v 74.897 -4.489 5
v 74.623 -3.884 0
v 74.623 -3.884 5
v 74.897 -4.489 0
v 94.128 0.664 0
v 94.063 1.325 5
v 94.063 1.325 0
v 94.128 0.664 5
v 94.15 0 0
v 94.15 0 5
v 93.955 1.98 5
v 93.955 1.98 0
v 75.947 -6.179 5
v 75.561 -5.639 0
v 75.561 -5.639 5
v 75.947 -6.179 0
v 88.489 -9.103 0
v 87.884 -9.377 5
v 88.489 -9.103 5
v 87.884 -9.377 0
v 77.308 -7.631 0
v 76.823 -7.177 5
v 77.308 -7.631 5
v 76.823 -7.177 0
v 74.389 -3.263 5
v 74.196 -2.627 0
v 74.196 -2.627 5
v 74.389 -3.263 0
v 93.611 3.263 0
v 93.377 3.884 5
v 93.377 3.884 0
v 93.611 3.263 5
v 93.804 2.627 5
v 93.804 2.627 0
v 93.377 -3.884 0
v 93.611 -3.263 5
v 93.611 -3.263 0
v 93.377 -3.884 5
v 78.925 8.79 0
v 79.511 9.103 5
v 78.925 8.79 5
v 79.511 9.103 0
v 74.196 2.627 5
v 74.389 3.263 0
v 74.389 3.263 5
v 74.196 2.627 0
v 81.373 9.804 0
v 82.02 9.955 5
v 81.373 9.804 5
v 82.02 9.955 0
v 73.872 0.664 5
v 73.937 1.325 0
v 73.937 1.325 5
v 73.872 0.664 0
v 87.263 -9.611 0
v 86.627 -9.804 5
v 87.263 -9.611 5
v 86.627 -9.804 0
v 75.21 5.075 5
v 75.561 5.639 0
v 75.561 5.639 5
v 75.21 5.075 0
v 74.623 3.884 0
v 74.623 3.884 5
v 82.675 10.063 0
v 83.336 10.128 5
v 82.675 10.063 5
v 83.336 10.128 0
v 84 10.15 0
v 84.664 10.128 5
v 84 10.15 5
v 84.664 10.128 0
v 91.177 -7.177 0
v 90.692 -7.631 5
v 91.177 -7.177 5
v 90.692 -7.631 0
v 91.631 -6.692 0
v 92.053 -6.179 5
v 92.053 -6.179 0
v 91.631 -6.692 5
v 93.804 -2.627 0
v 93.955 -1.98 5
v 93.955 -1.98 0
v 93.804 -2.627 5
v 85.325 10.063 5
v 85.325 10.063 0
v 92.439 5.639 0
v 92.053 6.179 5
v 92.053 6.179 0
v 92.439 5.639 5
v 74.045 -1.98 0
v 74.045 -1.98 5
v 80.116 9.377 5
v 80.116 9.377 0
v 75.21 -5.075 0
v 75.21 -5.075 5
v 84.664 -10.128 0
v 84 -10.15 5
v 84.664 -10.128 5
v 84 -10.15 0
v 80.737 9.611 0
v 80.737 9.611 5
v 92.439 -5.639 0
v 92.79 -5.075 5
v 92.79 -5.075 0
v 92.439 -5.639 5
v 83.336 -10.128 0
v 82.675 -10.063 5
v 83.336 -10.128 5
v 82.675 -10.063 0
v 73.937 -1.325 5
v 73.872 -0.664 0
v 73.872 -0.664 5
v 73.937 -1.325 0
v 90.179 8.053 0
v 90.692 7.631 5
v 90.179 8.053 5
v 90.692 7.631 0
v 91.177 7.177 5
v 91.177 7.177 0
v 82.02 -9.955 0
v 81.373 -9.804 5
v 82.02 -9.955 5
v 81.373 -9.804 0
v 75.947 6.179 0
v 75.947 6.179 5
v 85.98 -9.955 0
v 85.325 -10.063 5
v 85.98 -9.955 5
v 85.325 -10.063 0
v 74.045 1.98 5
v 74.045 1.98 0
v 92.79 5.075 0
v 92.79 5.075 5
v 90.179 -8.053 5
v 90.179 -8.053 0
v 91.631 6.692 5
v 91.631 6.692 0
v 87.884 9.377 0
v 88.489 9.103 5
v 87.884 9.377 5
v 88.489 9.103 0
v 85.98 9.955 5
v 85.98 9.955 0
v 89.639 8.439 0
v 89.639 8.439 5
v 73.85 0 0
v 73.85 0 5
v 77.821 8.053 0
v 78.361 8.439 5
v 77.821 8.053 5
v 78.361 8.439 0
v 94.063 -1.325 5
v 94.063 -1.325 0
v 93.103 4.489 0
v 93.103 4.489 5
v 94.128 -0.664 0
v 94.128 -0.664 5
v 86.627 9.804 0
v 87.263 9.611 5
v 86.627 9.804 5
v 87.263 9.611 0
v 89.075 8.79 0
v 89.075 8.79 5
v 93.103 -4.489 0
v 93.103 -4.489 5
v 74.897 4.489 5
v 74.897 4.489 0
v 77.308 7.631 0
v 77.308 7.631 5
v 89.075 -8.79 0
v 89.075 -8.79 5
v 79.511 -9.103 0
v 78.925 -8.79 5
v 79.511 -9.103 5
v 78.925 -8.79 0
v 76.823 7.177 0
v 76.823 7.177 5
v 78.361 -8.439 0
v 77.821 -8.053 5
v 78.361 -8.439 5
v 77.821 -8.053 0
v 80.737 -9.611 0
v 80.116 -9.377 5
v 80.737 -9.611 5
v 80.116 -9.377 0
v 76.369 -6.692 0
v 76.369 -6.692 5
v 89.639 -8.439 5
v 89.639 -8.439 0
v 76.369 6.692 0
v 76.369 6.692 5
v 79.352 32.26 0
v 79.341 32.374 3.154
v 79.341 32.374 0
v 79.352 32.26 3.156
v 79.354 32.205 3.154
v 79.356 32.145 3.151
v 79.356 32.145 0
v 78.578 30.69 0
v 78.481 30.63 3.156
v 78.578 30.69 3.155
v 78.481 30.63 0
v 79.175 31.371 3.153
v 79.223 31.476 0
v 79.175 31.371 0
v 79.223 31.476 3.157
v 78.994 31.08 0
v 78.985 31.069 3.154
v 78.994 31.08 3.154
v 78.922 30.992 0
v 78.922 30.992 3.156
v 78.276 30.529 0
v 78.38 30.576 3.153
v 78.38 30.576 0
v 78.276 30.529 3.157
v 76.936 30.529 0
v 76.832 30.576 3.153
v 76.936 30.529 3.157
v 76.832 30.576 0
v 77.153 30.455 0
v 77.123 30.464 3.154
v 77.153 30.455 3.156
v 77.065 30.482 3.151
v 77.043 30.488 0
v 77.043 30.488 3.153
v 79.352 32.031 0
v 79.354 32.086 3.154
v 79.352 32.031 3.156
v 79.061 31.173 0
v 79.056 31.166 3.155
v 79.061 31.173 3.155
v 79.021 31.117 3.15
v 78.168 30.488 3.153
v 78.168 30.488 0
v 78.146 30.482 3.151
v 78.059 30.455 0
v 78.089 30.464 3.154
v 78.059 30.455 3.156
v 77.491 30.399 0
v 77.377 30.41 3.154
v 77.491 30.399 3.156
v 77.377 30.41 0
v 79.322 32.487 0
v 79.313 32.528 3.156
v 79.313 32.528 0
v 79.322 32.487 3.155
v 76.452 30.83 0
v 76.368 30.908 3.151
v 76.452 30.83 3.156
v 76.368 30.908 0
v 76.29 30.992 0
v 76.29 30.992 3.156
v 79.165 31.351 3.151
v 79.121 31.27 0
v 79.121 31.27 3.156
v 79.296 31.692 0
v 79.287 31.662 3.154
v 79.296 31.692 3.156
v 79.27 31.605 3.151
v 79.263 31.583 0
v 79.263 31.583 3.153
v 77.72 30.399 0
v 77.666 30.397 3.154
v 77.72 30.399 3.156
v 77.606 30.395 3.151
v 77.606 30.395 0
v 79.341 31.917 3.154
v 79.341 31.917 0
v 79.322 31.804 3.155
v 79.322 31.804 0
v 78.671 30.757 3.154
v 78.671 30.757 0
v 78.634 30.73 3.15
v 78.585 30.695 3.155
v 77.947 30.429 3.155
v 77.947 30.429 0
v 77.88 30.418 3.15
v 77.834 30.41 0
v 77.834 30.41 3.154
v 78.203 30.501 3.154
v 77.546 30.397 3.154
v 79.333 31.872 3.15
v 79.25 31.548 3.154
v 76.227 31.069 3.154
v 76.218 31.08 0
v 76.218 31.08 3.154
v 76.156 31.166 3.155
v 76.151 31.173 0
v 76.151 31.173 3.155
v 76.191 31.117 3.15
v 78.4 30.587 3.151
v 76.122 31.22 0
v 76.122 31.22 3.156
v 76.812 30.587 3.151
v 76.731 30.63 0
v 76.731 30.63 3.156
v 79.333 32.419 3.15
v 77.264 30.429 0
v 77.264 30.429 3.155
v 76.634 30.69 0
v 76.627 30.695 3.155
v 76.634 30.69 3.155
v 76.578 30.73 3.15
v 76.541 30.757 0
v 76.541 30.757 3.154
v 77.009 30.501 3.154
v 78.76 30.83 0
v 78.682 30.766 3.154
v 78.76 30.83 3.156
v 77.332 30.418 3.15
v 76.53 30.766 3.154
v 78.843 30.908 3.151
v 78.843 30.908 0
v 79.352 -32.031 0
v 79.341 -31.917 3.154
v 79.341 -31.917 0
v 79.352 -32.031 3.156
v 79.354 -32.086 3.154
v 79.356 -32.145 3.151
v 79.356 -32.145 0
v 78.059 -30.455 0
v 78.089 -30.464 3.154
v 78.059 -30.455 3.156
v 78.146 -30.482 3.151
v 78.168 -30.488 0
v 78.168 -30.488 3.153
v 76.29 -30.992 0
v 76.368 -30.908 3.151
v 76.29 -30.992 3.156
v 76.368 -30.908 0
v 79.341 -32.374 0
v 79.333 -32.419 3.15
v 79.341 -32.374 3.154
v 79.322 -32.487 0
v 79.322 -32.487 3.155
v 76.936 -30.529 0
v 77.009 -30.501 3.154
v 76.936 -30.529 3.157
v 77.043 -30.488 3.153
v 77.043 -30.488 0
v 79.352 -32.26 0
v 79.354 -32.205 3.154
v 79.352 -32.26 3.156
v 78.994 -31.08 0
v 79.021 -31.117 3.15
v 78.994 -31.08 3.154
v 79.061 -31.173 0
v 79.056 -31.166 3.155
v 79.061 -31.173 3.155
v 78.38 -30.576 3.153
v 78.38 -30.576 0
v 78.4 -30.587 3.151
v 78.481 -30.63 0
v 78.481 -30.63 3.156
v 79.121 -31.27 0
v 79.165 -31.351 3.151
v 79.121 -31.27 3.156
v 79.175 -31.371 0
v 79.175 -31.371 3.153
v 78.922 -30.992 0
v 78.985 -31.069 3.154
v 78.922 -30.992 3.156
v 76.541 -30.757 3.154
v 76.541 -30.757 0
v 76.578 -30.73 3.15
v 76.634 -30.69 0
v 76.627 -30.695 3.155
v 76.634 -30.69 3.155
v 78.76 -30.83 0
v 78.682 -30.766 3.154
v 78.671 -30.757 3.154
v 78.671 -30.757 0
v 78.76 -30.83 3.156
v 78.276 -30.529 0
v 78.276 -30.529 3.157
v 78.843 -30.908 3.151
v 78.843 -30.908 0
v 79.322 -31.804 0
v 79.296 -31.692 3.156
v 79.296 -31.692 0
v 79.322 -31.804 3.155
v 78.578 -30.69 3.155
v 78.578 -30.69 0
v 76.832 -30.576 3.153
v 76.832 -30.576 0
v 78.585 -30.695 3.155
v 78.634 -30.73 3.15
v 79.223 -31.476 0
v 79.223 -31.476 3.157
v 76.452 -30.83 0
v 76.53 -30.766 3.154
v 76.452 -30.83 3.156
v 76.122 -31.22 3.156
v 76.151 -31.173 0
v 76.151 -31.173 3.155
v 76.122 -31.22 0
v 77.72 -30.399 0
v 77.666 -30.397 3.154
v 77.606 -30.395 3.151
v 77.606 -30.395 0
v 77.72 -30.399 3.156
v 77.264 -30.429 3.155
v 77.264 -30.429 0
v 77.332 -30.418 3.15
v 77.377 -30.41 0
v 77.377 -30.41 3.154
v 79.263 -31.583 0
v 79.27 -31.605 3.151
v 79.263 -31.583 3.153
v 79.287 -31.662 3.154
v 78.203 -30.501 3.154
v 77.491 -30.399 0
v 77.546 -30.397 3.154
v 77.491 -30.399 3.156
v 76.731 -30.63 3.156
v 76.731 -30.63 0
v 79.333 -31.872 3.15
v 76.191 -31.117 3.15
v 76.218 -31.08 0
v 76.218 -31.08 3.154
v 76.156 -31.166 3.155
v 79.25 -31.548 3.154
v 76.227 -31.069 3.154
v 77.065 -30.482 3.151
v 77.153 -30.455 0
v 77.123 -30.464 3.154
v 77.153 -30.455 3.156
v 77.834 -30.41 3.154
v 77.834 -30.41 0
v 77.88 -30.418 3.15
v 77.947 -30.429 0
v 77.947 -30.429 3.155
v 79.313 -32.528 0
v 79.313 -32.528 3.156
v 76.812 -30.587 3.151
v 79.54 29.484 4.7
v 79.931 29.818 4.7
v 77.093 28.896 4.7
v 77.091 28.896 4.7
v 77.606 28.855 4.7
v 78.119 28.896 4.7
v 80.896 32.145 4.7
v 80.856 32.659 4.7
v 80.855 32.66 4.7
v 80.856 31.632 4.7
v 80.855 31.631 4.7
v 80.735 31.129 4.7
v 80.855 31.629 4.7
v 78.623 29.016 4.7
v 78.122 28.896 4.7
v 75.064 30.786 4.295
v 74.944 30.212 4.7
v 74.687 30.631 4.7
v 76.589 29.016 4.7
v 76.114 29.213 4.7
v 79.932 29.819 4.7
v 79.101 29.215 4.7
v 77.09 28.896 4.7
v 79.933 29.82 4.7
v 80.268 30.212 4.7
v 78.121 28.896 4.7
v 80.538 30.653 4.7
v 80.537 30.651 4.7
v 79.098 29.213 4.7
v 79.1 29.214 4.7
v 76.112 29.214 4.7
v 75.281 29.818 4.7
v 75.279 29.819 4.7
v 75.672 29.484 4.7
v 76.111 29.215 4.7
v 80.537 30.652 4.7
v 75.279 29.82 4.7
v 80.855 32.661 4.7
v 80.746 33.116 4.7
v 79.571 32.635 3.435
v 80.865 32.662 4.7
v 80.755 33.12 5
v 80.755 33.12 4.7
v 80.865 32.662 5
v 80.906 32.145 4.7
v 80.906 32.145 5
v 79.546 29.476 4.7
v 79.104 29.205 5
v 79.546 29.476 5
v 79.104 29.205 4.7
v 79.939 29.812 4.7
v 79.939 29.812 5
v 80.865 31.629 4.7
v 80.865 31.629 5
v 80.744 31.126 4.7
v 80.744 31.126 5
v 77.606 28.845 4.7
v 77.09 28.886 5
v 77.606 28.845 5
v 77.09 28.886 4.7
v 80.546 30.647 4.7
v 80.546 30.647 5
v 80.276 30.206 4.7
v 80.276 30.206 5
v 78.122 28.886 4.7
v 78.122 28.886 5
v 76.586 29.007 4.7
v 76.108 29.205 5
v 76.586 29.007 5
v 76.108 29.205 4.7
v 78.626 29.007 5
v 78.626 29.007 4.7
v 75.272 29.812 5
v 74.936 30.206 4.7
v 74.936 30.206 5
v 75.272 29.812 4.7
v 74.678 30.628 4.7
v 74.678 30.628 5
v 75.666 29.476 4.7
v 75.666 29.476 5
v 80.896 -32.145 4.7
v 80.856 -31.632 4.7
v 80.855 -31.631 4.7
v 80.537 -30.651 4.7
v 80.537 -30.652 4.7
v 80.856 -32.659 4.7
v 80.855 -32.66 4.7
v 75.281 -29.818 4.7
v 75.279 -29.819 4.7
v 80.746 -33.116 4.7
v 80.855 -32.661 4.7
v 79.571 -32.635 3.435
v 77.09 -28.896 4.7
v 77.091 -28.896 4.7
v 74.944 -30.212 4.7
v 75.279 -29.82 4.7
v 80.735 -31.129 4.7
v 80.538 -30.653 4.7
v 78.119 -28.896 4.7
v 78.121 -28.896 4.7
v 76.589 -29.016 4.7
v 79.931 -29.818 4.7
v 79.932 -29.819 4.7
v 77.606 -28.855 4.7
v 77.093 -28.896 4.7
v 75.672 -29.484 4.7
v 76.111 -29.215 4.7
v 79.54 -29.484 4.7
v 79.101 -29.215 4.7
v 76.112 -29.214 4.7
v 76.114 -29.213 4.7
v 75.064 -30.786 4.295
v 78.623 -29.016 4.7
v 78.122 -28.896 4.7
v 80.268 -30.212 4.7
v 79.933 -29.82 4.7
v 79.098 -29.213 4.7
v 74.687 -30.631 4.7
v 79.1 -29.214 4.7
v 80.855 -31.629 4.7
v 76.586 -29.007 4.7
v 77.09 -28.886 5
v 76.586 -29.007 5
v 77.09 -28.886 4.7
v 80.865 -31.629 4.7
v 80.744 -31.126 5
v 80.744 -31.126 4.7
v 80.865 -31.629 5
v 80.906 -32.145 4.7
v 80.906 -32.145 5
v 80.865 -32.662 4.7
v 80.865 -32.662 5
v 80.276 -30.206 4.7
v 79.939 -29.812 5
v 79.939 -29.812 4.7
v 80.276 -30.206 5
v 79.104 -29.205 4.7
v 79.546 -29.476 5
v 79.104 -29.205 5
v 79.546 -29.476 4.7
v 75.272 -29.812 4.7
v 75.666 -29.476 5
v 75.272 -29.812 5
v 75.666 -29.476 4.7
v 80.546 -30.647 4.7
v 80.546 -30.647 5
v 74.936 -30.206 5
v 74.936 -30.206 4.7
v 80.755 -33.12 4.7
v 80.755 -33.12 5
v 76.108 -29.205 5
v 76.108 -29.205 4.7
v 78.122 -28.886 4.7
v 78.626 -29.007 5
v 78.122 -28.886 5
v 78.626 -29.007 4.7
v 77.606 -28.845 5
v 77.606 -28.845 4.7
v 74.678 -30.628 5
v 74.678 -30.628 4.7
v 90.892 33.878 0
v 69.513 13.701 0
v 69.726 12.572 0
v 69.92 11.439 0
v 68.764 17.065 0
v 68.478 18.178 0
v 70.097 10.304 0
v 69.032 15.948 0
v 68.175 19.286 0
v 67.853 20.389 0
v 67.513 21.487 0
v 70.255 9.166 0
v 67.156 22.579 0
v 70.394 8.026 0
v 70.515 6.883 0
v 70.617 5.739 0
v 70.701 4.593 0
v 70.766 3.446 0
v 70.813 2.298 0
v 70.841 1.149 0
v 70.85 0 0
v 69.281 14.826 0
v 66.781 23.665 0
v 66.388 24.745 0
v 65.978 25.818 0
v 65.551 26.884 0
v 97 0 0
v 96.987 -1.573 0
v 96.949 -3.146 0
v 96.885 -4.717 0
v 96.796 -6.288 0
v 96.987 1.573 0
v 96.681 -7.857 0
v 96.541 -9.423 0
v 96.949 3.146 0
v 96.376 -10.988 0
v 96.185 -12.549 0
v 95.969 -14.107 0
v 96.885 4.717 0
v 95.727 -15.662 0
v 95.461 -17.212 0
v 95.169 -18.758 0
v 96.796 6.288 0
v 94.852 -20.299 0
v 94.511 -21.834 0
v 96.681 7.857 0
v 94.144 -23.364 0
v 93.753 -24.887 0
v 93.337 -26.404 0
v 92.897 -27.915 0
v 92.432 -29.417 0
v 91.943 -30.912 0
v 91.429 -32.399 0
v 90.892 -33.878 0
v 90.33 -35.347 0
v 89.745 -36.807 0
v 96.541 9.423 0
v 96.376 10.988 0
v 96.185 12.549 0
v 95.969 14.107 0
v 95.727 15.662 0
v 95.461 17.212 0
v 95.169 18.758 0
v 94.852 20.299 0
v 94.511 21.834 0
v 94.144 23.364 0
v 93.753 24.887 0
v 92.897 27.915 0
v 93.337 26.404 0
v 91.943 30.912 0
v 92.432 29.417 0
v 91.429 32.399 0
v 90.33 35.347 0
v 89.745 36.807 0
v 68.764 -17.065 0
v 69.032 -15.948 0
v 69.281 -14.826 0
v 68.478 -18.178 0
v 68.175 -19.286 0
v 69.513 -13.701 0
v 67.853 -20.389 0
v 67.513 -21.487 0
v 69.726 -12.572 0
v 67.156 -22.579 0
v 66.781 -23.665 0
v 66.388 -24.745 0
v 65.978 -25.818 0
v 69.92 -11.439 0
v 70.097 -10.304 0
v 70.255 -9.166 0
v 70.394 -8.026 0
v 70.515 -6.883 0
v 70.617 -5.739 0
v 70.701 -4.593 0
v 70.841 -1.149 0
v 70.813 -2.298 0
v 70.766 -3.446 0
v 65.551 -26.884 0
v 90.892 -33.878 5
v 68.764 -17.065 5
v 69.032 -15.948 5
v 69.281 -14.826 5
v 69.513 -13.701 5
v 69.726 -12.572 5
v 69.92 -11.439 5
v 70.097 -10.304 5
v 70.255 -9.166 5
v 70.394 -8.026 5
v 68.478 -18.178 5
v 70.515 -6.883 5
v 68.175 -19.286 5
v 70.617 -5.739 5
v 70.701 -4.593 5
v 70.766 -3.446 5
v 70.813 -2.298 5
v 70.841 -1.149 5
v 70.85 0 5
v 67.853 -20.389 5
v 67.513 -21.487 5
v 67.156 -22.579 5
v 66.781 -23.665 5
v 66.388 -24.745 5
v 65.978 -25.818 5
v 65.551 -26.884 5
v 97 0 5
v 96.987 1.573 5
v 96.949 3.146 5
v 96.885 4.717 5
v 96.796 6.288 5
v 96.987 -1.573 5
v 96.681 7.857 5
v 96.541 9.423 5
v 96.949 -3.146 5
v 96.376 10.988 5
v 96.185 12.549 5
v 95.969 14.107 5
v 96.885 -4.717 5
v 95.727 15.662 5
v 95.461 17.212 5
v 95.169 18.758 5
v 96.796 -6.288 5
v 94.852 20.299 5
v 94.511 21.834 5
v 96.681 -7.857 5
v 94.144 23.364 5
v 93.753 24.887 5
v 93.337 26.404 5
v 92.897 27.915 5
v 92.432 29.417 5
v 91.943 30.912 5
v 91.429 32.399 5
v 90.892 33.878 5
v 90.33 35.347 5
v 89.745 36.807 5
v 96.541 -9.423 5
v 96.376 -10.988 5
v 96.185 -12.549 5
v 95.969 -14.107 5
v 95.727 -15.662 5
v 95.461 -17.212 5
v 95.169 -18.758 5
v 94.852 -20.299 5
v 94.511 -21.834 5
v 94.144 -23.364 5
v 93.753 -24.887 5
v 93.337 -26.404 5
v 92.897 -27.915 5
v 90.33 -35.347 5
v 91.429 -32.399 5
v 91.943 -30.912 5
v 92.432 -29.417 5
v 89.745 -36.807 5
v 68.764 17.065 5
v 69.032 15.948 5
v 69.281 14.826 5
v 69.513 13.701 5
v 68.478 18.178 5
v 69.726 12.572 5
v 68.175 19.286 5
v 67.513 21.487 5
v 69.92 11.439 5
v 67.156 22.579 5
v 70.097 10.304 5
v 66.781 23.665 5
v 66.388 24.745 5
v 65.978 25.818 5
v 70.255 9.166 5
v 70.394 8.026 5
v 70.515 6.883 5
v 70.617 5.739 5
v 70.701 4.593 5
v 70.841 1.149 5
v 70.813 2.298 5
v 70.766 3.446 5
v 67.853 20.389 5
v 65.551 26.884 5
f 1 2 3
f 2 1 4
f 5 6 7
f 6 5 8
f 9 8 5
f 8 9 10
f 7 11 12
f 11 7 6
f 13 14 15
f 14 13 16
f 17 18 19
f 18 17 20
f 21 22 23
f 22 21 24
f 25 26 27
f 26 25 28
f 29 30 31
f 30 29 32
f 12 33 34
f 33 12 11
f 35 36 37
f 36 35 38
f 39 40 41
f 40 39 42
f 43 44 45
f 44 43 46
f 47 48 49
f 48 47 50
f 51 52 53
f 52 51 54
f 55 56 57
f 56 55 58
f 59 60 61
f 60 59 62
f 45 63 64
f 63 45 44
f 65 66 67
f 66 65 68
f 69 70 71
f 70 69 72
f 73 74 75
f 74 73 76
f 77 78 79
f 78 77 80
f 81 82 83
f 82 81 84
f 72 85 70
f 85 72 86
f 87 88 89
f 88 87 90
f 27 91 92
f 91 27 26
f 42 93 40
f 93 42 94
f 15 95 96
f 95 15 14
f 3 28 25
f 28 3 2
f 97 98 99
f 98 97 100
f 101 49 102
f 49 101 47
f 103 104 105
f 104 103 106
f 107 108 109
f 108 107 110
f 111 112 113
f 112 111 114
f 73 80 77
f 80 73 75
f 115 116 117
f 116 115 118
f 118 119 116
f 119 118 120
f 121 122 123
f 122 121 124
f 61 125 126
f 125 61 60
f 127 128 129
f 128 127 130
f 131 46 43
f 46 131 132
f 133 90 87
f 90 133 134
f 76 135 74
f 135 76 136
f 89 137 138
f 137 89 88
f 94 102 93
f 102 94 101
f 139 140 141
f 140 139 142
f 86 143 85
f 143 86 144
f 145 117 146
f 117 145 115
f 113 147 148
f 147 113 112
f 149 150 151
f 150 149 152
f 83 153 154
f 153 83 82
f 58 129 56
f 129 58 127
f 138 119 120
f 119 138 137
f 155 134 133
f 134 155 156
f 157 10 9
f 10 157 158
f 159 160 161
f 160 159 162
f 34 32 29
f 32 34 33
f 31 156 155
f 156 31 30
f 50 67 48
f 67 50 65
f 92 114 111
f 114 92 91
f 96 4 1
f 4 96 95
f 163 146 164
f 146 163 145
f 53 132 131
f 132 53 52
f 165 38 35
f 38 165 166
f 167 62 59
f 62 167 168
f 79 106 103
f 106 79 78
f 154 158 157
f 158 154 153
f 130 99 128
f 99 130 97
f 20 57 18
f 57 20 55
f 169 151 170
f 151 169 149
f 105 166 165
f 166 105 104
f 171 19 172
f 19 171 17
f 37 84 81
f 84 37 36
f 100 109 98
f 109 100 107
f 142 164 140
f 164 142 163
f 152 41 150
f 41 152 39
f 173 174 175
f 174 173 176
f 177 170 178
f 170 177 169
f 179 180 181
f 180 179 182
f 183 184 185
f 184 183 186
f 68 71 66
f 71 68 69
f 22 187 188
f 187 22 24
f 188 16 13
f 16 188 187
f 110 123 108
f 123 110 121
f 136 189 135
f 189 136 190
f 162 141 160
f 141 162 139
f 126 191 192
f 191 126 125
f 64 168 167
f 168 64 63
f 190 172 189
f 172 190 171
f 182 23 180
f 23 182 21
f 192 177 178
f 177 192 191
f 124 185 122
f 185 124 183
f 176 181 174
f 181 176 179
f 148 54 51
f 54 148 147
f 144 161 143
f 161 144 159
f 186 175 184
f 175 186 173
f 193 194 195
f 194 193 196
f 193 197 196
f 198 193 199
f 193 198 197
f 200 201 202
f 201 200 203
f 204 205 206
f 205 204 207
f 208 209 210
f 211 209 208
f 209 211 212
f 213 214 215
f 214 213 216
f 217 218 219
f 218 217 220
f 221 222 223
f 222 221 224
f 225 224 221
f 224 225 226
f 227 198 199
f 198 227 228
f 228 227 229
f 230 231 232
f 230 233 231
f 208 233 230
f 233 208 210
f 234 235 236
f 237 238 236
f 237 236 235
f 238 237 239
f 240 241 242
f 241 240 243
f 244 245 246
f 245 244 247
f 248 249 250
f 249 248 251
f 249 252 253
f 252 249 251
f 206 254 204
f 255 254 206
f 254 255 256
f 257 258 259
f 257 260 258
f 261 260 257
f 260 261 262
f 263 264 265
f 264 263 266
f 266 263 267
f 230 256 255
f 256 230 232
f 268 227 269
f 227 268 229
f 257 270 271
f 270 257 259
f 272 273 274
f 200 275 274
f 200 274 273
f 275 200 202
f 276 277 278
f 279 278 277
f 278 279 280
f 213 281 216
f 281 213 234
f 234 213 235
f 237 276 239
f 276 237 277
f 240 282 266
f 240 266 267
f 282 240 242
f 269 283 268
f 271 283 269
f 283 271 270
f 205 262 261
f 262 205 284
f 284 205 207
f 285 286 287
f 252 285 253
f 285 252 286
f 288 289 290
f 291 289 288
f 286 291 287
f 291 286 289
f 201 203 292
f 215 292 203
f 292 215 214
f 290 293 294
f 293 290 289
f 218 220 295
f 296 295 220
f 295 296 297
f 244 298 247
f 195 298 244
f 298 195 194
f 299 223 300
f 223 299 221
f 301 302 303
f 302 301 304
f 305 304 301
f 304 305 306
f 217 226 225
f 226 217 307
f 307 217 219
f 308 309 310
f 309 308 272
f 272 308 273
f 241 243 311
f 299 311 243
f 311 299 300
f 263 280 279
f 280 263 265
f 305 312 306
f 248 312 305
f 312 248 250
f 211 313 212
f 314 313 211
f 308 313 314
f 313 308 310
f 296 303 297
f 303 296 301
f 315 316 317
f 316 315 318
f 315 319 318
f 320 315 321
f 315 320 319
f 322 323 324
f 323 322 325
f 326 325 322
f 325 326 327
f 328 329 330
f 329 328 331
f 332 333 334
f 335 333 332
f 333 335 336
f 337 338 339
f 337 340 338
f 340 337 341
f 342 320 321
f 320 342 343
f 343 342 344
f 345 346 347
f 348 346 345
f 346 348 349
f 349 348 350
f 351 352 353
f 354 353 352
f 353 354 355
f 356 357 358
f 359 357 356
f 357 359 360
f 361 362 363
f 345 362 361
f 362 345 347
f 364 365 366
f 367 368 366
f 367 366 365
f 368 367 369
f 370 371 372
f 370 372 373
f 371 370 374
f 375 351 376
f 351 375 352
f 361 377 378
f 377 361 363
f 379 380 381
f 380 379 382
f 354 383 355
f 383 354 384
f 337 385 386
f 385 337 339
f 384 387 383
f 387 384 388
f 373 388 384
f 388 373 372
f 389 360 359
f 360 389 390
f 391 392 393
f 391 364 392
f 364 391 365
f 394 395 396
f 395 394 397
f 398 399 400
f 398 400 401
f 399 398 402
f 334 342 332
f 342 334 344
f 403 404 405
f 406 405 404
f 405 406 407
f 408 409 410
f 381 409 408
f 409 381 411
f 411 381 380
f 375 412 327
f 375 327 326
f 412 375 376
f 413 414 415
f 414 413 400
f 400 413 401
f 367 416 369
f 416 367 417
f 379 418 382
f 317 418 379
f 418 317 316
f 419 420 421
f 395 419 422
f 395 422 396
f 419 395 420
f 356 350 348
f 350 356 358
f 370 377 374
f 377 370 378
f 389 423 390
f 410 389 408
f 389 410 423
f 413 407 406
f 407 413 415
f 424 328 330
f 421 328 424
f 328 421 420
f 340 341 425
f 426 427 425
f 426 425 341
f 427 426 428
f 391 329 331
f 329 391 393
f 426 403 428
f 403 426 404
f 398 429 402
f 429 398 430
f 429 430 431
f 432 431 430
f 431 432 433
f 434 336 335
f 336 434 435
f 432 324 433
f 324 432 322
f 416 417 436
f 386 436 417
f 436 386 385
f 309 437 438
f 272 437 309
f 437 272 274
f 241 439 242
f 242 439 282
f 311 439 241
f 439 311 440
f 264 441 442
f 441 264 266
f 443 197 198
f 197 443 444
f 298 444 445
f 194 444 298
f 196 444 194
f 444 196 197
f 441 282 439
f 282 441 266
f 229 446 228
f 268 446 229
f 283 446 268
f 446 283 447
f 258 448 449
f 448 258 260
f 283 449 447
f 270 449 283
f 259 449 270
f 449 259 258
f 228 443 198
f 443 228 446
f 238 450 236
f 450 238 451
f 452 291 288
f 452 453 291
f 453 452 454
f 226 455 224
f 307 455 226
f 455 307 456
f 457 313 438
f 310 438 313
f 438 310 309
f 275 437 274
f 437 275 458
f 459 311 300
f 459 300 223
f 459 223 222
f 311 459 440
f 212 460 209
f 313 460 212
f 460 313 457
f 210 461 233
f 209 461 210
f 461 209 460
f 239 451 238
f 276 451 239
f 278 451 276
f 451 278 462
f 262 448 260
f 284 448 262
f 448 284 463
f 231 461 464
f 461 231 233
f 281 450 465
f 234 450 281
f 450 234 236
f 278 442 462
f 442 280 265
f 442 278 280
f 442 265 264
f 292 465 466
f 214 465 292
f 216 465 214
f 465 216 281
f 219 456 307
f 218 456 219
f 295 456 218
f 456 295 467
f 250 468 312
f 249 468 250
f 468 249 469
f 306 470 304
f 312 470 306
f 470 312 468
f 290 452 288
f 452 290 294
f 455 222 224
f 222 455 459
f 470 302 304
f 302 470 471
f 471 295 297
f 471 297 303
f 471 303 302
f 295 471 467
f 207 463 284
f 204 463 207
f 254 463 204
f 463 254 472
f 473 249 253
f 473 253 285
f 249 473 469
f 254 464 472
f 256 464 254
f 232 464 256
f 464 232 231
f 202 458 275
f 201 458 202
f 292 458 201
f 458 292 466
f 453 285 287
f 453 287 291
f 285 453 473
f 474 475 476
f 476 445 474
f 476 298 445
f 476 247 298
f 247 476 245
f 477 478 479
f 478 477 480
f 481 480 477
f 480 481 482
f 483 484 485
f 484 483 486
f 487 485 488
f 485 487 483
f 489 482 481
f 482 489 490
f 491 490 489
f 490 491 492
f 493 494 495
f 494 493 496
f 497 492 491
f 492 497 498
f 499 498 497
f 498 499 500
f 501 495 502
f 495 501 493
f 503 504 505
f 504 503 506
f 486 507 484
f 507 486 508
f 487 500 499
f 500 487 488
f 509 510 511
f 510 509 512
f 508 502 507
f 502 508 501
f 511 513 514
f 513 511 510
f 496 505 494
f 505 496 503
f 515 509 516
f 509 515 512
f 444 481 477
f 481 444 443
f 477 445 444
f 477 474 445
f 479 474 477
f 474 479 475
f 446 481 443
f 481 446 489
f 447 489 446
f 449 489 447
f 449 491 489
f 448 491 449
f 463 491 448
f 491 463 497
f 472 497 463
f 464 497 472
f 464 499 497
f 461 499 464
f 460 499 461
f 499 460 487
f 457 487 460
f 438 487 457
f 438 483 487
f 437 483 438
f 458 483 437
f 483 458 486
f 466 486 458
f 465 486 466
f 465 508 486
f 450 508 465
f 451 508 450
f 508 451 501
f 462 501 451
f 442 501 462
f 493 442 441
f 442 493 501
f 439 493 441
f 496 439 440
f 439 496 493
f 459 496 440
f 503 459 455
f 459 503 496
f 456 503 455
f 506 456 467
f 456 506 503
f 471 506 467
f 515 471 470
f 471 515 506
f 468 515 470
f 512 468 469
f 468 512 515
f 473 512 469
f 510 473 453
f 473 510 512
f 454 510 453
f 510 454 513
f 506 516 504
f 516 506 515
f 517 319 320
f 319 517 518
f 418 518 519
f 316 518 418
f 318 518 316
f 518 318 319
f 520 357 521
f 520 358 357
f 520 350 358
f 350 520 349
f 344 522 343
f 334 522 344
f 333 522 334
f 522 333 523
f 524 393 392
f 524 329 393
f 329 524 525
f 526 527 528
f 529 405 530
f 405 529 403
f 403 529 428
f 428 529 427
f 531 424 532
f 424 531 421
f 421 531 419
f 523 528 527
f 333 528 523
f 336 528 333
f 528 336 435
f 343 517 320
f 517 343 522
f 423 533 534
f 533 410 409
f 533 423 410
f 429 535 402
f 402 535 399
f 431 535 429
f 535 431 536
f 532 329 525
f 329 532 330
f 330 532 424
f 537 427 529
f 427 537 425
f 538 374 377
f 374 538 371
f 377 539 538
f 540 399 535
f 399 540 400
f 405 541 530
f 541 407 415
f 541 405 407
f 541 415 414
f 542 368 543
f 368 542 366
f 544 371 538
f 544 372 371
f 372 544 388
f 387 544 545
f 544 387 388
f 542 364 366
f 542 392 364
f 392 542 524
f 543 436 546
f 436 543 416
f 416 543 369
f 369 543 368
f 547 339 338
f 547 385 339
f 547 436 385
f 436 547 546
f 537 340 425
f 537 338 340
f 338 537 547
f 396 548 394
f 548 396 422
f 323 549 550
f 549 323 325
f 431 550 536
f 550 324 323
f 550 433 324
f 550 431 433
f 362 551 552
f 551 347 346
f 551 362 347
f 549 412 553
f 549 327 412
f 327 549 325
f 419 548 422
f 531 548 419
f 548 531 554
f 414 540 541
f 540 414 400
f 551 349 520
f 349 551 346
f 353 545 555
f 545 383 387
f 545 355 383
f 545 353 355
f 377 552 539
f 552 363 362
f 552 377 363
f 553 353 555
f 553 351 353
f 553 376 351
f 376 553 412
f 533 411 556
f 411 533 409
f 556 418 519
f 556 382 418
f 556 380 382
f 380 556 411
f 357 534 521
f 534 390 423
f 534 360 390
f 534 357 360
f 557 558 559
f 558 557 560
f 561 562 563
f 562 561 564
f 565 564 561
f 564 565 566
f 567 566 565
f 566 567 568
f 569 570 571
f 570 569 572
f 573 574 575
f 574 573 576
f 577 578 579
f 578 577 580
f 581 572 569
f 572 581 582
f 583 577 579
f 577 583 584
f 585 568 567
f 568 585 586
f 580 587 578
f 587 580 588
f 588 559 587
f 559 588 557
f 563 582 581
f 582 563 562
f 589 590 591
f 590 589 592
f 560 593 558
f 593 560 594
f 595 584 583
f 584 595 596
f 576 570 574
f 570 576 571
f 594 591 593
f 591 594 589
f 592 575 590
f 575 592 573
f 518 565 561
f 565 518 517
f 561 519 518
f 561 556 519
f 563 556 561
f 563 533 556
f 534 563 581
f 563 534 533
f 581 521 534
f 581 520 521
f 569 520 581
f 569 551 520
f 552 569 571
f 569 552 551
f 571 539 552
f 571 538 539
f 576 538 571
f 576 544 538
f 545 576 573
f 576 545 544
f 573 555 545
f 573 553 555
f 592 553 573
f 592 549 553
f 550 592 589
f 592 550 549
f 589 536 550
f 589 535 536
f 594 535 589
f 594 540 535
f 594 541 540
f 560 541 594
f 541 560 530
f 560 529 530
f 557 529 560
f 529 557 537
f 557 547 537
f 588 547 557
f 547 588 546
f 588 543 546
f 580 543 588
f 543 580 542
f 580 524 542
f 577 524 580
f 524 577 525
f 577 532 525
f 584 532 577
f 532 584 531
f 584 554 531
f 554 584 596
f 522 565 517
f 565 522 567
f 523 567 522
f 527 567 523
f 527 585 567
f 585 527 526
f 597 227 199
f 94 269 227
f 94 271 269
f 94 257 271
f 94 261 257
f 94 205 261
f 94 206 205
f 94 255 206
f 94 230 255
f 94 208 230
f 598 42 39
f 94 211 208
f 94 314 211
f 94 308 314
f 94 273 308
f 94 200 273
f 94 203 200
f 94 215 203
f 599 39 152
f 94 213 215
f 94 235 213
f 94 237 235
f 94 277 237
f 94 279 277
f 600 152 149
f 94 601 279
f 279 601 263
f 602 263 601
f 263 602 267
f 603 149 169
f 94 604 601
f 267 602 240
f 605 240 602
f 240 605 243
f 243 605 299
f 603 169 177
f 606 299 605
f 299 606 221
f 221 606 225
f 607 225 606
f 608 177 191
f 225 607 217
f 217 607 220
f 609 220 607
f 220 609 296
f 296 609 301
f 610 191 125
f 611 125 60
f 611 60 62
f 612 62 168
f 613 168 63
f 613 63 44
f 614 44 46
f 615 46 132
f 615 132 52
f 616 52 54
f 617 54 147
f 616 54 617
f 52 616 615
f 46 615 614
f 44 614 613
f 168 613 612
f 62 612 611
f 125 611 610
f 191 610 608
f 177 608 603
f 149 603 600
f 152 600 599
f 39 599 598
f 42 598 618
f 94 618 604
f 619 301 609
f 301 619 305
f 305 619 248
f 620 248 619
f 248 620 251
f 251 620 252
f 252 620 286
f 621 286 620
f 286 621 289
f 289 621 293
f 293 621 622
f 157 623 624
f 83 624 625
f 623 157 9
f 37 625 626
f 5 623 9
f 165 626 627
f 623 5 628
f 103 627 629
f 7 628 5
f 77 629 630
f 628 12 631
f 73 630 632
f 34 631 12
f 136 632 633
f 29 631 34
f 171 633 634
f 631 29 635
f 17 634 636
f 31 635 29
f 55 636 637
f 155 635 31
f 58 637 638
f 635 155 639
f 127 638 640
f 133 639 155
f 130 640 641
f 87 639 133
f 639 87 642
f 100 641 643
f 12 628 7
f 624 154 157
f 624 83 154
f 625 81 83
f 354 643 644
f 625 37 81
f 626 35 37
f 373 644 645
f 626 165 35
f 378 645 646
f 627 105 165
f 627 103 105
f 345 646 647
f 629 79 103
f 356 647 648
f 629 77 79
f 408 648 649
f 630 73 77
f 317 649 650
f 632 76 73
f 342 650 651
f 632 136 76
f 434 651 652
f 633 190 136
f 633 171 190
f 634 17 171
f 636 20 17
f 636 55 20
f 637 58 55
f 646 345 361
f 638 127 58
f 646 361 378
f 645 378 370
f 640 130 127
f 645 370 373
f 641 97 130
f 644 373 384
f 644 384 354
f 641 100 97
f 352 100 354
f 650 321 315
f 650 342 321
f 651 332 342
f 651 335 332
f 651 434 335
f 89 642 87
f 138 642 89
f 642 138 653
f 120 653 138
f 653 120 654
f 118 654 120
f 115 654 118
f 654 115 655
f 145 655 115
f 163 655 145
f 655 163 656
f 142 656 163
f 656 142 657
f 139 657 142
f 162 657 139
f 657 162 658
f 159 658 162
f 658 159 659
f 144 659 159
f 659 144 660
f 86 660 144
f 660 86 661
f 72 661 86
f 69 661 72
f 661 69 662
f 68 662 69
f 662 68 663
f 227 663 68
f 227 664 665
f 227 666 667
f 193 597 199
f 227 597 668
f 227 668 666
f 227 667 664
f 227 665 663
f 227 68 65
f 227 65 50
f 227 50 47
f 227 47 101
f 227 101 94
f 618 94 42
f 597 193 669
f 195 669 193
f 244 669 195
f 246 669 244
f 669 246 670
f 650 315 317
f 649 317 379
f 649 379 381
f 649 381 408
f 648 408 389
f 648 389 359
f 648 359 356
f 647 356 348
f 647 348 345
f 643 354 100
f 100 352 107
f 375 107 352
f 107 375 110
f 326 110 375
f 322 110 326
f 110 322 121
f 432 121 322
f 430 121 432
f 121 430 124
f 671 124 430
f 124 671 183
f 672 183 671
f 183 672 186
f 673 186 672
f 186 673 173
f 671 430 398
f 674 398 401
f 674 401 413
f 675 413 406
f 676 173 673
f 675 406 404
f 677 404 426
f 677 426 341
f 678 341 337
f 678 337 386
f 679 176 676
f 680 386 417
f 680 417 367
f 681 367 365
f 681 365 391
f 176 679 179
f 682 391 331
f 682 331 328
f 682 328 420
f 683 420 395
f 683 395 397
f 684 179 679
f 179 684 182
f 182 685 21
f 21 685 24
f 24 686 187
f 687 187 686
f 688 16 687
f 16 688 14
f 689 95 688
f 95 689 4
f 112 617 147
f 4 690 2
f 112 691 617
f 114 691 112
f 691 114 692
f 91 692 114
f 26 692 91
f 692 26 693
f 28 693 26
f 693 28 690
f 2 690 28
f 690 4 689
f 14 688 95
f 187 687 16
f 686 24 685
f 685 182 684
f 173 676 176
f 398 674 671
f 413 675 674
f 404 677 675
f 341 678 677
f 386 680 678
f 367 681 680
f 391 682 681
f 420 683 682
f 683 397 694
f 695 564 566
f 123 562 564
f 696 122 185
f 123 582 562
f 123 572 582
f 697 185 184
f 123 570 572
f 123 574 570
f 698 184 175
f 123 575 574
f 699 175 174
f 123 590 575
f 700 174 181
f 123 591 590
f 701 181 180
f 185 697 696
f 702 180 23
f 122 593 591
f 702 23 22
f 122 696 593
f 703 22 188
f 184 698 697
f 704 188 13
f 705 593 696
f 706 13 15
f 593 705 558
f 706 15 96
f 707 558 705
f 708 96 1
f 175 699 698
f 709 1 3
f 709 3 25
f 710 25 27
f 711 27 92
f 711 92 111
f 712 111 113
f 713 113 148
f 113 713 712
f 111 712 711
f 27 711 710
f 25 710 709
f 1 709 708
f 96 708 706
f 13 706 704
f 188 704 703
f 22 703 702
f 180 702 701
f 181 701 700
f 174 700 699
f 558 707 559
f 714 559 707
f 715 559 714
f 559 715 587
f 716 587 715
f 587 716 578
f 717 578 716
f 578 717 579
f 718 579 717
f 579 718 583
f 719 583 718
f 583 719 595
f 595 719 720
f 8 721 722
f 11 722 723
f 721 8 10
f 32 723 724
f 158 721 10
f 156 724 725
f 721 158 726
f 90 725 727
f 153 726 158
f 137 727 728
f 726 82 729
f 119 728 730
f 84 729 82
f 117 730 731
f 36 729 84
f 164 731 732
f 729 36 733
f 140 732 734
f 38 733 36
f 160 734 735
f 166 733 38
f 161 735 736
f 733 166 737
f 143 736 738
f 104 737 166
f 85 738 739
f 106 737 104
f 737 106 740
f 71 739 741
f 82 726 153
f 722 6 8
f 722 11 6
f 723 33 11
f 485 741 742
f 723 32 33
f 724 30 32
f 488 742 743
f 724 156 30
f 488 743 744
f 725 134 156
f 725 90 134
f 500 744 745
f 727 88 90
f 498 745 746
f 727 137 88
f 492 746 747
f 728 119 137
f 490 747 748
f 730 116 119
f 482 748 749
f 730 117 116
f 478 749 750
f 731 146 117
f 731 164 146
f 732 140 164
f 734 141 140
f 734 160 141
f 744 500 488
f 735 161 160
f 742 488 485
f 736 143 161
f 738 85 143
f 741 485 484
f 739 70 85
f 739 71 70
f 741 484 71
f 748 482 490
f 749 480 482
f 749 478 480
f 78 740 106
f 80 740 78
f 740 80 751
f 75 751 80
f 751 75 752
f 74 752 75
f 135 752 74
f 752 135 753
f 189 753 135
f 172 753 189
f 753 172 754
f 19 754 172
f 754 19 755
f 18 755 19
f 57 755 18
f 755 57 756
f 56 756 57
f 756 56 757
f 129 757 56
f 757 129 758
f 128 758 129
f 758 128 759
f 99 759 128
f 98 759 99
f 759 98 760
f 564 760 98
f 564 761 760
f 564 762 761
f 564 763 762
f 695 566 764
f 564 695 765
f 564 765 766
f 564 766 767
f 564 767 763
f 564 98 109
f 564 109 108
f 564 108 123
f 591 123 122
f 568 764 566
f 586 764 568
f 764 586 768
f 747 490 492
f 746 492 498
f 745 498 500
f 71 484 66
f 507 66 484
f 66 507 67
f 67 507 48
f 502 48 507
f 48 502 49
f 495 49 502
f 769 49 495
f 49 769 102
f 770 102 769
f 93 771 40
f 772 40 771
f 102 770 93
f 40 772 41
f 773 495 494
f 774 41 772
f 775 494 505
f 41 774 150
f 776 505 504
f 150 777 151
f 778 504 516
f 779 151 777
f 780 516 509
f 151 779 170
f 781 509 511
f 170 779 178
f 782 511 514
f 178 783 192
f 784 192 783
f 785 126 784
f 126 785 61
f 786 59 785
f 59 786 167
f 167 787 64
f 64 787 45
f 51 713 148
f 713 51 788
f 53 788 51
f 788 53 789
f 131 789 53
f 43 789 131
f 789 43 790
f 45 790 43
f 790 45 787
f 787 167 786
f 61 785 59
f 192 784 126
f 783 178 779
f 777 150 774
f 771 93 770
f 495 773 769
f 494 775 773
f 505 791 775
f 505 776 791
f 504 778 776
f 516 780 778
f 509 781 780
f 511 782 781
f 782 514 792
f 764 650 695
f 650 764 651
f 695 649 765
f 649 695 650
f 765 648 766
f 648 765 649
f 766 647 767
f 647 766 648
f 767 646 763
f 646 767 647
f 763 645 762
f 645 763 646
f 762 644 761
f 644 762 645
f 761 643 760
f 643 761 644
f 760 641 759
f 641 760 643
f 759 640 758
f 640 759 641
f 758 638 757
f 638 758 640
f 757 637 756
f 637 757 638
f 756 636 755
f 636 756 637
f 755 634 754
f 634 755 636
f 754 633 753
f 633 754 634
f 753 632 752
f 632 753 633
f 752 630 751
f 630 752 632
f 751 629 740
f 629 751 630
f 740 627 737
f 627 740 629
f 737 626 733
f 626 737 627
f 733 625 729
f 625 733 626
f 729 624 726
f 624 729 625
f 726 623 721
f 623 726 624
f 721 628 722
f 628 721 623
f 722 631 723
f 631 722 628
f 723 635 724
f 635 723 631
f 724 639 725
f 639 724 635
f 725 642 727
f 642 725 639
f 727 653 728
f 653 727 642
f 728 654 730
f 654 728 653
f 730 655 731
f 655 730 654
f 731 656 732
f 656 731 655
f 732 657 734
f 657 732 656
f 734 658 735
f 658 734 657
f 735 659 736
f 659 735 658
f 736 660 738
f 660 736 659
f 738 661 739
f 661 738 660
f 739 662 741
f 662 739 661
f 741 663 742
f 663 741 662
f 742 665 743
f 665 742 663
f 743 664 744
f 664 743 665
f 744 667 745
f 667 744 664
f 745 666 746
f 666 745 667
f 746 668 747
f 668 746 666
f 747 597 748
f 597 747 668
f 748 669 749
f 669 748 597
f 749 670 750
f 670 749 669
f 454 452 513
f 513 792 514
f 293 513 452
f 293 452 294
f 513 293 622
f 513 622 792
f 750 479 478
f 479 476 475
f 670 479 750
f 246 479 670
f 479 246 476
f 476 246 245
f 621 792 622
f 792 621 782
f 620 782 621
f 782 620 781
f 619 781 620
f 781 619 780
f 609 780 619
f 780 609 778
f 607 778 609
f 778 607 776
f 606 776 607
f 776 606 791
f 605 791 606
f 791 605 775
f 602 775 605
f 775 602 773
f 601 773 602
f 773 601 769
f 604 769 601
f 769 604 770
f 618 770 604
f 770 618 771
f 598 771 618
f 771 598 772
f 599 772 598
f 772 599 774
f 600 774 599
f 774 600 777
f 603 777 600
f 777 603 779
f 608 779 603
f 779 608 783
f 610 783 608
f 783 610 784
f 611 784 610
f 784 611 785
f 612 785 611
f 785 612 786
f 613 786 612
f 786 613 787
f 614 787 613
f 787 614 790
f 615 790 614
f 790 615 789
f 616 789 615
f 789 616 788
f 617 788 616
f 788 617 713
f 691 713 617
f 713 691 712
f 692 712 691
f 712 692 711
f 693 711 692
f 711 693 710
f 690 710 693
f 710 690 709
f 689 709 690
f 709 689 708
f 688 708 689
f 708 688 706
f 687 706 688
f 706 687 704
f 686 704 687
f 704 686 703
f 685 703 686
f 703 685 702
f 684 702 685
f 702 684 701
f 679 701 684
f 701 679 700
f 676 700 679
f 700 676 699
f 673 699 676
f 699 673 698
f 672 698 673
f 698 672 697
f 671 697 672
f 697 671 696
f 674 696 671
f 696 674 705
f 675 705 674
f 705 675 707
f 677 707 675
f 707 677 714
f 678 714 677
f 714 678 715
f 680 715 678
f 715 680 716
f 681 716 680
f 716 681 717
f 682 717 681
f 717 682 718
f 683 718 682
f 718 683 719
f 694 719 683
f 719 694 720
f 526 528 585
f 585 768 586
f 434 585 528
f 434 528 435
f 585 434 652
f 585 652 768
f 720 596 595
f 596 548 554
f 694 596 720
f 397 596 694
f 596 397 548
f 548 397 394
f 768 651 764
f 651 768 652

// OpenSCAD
// file: parameters.scad
// =============================================================================
// Gen-CF — nightly 2026-10-14 (physics_scorer, honest magpylib watts)
// Stator-only upgrade for an existing Gen-CA: the R84 arcs, hubs and Ø194 steel stay as they are; a new annular 12-bobbin stator with 4.65 mm copper (Gen-CD-style thin window) and r63–105 bobbins replaces the old r64–104 × 4.95 mm stator, together with a shorter gap sleeve and matching frame rods / bridges. Frame rods pushed to R108.5 for ≥1.0 mm web to the bays. No new magnets or steel. Scans showed no R84 stator beats Gen-CA’s own 8.492 W; this kit is the best distinct modular swap (≈8.41 W scan, ≈375 m).
// Clocking 0 deg (magnets N facing S) + D-flat keyed bore + index notch + flip-symmetric hole map.
// Windable 2-piece bobbin; turns = physics_scorer turns_fit; copper only between flanges.
// Steel back-iron: 2× Ø194 × 4.76 mm (3/16") mild-steel discs (steel_backiron_disc.dxf); magnets sit ON the steel
// (through-pockets) -> score with --back-iron. Night 2026-10-14.
// =============================================================================
topology            = "dual_rotor";

// --- Wire / winding (physics_scorer winding-fit) -------------------------------
wire_awg            = 26;
wire_od             = 0.45;     // insulated OD mm (bare 0.405)
fill_realistic      = 0.65;     // insulated-wire area / window (DENSE layered wind with a jig; scorer cap 0.65)
turns               = 347;       // = physics_scorer turns_fit (do NOT raise)
coil_former_type    = "bobbin";
coil_core_inset     = 18.26;     // radial copper build: hub = copper boundary inset by this
wind_build_axial    = 0.0;      // nothing proud of the flanges
wind_build_radial   = 0.0;

// --- Bobbin (base + lid) ---------------------------------------------------------
coil_id_r           = 63.00;    // copper boundary sector
coil_od_r           = 105.00;
span_deg            = 26.82;    // = pitch - 2*asin((wall+0.85)/coil_id_r) -> >=1.2 mm stator web
former_web          = 4.65;     // copper height between flanges (TALL copper: steel keeps Bz up)
flange_t            = 0.80;     // >= 0.8 mm FDM wall rule (tall winds push on the flanges)
wall                = 0.80;     // flange lip beyond copper
former_bare_h       = former_web + 2 * flange_t;
coil_envelope_h     = former_bare_h + 2 * wind_build_axial;
tab_w               = 7.0;
tab_len             = 7.0;
tab_h               = former_bare_h / 2;
pin_d               = 1.9;      // 1.75 mm filament locating pin
coil_mount_r        = coil_od_r + 0.2 + 4.0;
lead_y              = 1.6;
lead_slot_w         = 0.9;
lead_groove_d       = 0.6;

// --- Gap -------------------------------------------------------------------------
run_clear           = 0.50;     // rotor face -> flange
gap_spacer_h        = run_clear + wind_build_axial;
m2m                 = coil_envelope_h + 2 * run_clear;   // rotor face to rotor face (= gap_sleeve length)

// --- Stator ----------------------------------------------------------------------
coil_stations       = 12;
bay_clear           = 0.35;     // 0.35 mm: bobbin BASES print IN PLACE inside the stator bays (print-in-place gap), then pop out
stator_thick        = former_bare_h;                        // bobbins flush both faces
stator_od           = 228;
shaft_clear_stator  = 14.0;     // stator is static; gap sleeve OD 12 spins inside
stator_ir           = 57.85;    // ANNULAR stator: open centre (nested one-plate pack); inner rim 4.0 mm

// --- Rotor(s) --------------------------------------------------------------------
magnet_Br           = 1.43;     // N52
magnet_d_large      = 20.0;
magnet_h_large      = 5.0;      // one O20x5 per pocket
magnet_h_small      = 5.0;      // unused: no O5 pockets in this kit
halbach_magnetisation = "none";  // NO O5 assist magnets in this kit (scan: they lower the 4-pole score)
rotor_b_same_axis   = true;     // same-index magnets share one axis: N faces S across the gap
large_pocket_d      = 20.3;
small_pocket_d      = 5.3;
pocket_h            = 5.00;     // THROUGH the carrier: magnet back face sits on the steel disc (FLUSH seat: carrier = magnet height, magnet face level with the rotor face)
large_n             = 8;
R_large             = 84.0;
small_r_list        = [];       // no O5 pockets
carrier_od          = 194.0;
ring_ir             = 70.85;    // RING rotor: PLA magnet ring r ring_ir..carrier_od/2 (steel disc = structural rotor)
hub_flange_od       = 74.0;     // separate rotor_hub flange (inside the ring, flush with the ring face)
csk_d               = 6.6;      // M3 countersunk head pocket (ISO 10642 head 6.0 nominal) on the stator face
csk_depth           = 1.55;     // = (csk_d - m3_clear) / 2: 90 deg cone; head sits 0.3 mm below the face
n_seg               = 8;        // magnet-carrier ARCS per rotor (segmented carrier)
seg_deg             = 360 / n_seg;
seg_start           = -22.5;   // arc edge angle (between pocket 0 and its clamp bolt)
seg_kerf_deg        = 0.4;      // gap between neighbouring arcs on the steel
carrier_thick       = pocket_h;
hub_h               = 12.0;     // > steel_t + insert: radial set-screw clears the steel
hub_od              = 24.0;     // slim hub so the M4 brace rods fit at R~18 inside the coil ring
hub_insert_d        = 4.0;      // M3 heat-set insert, radial, bears on the D-flat
rotor_b_offset_deg  = 0.0;      // CLOCKING: magnets directly opposite
shaft_key           = "dflat";
dflat_depth         = 0.5;      // 8 mm shaft with 0.5 mm flat (7.5 across flat)
index_notch_d       = 3.0;

// --- Steel back-iron (buyable laser-cut) -------------------------------------------
steel_t             = 4.76;      // mild steel thickness (image method ignores it; sized from steel_flux.py so the return path stays well below saturation)
steel_center_hole   = 26.0;     // slips over the rotor hub (OD 24)
steel_od            = carrier_od;   // steel disc OD = rotor carrier OD

// --- Modular MAX interface ----------------------------------------------------------
shaft_bore          = 8.35;
dflat_x             = 4.0 - dflat_depth + (shaft_bore - 8.0) / 2;
bearing_d           = 21.85;
bearing_h           = 7.2;
m3_clear            = 3.5;
bolt_r_inner        = 30.0;     // M3 steel-disc clamp bolts (inside the magnet ring)
bolt_n_inner        = 4;
bolt_inner_angles   = [0, 90, 180, 270];
bolt_r_outer        = 84.0;     // second M3 steel-disc clamp ring
bolt_outer_angles   = [22.5, 67.5, 112.5, 157.5, 202.5, 247.5, 292.5, 337.5];
flange_bolt_r       = 108.5;     // frame rods: OUTSIDE the rotor OD (rotors spin inside them)
flange_bolt_n       = 4;
flange_bolt_offset  = 45.00;    // between coil stations -> never cuts a lead groove/tab
brace_r             = 18.0;
brace_d             = 4.3;      // temporary M4 jack rods (assembly only)
brace_n             = 4;
brace_angles        = [45, 135, 225, 315];          // flip-symmetric

spacer_pad_od       = 14.0;
spacer_pad_id       = m3_clear;
endbell_od          = 227.0;
endbell_thick       = 8.0;
endbell_shaft_clear = 10.0;
collar_h            = 10.0;
standoff_od         = 9.0;
frame_standoff_h    = run_clear + carrier_thick + hub_h + collar_h + 2.0;
sleeve_od           = 12.0;
plate_max_mm        = 410;

$fn = 64;
// main file
// Gen-CF — rotor A MAGNET-CARRIER ARC (2026-10-14 segmented nested pack). Print x8 per rotor (16 total
// for A+B; A and B arcs are the same print). Each arc covers seg_deg = 360/n_seg of the R_large ring and holds 1 O20 through-pockets
// + 1 countersunk M3 clamp holes (inter-pole, R bolt_r_outer) to the steel disc. The 4.76 mm mild-steel disc is the structural
// rotor; the separate rotor_hub (D-flat) bolts to it at R bolt_r_inner. Arcs pack around/inside the other parts on ONE plate,
// and any arc can be swapped/re-printed on its own (modular magnet carrier).
// CLOCKING: arc j spans [j*seg_deg + seg_start, (j+1)*seg_deg + seg_start - kerf]; pockets at i*360/large_n + rotor_b_offset_deg (= 0).
// The arc's bolt holes sit on the same 8-fold map as the pockets, so every arc position puts pockets on the same steel angles;
// pocket 0 = the pocket over the STEEL index notch (clocked to the hub D-flat). Rotor B arcs = same print, flipped to face A.
// Print countersinks UP (stator face up); the arc lies flat (5 mm), no supports.
include <parameters.scad>;
$fn = 96;
module ring_holes_2d() {
    for (a = bolt_outer_angles) translate([bolt_r_outer*cos(a), bolt_r_outer*sin(a)]) circle(d=m3_clear);
    translate([carrier_od/2, 0]) circle(d=index_notch_d, $fn=24);
}
module hub_holes_2d() {
    for (a = bolt_inner_angles) translate([bolt_r_inner*cos(a), bolt_r_inner*sin(a)]) circle(d=m3_clear);
    for (a = brace_angles) translate([brace_r*cos(a), brace_r*sin(a)]) circle(d=brace_d);
    translate([hub_flange_od/2, 0]) circle(d=index_notch_d, $fn=24);
}
module csk(r, angles) {   // M3 countersunk (ISO 10642, 90 deg) head pocket on the STATOR face, head 0.3 mm below the face
    for (a = angles) translate([r*cos(a), r*sin(a), 0]) {
        translate([0, 0, carrier_thick - 0.3 - csk_depth - 0.2]) cylinder(d1=m3_clear - 0.4, d2=csk_d, h=csk_depth + 0.2 + 0.01, $fn=40);
        translate([0, 0, carrier_thick - 0.3]) cylinder(d=csk_d, h=0.4, $fn=40);
    }
}

off = 0;
module arc_2d() {
    a0 = seg_start + seg_kerf_deg / 2; a1 = seg_start + seg_deg - seg_kerf_deg / 2;
    polygon(concat(
        [for (k = [0 : 48]) let(t = a0 + (a1 - a0) * k / 48) [(carrier_od/2) * cos(t), (carrier_od/2) * sin(t)]],
        [for (k = [48 : -1 : 0]) let(t = a0 + (a1 - a0) * k / 48) [ring_ir * cos(t), ring_ir * sin(t)]]));
}
difference() {
    linear_extrude(carrier_thick) arc_2d();
    for (i = [0 : large_n-1]) {
        a = i * 360 / large_n + off;
        translate([R_large*cos(a), R_large*sin(a), -0.1]) cylinder(d=large_pocket_d, h=carrier_thick + 0.2);
    }
    for (a = bolt_outer_angles) translate([bolt_r_outer*cos(a), bolt_r_outer*sin(a), -0.1]) cylinder(d=m3_clear, h=carrier_thick + 0.2);
    csk(bolt_r_outer, bolt_outer_angles);
}
